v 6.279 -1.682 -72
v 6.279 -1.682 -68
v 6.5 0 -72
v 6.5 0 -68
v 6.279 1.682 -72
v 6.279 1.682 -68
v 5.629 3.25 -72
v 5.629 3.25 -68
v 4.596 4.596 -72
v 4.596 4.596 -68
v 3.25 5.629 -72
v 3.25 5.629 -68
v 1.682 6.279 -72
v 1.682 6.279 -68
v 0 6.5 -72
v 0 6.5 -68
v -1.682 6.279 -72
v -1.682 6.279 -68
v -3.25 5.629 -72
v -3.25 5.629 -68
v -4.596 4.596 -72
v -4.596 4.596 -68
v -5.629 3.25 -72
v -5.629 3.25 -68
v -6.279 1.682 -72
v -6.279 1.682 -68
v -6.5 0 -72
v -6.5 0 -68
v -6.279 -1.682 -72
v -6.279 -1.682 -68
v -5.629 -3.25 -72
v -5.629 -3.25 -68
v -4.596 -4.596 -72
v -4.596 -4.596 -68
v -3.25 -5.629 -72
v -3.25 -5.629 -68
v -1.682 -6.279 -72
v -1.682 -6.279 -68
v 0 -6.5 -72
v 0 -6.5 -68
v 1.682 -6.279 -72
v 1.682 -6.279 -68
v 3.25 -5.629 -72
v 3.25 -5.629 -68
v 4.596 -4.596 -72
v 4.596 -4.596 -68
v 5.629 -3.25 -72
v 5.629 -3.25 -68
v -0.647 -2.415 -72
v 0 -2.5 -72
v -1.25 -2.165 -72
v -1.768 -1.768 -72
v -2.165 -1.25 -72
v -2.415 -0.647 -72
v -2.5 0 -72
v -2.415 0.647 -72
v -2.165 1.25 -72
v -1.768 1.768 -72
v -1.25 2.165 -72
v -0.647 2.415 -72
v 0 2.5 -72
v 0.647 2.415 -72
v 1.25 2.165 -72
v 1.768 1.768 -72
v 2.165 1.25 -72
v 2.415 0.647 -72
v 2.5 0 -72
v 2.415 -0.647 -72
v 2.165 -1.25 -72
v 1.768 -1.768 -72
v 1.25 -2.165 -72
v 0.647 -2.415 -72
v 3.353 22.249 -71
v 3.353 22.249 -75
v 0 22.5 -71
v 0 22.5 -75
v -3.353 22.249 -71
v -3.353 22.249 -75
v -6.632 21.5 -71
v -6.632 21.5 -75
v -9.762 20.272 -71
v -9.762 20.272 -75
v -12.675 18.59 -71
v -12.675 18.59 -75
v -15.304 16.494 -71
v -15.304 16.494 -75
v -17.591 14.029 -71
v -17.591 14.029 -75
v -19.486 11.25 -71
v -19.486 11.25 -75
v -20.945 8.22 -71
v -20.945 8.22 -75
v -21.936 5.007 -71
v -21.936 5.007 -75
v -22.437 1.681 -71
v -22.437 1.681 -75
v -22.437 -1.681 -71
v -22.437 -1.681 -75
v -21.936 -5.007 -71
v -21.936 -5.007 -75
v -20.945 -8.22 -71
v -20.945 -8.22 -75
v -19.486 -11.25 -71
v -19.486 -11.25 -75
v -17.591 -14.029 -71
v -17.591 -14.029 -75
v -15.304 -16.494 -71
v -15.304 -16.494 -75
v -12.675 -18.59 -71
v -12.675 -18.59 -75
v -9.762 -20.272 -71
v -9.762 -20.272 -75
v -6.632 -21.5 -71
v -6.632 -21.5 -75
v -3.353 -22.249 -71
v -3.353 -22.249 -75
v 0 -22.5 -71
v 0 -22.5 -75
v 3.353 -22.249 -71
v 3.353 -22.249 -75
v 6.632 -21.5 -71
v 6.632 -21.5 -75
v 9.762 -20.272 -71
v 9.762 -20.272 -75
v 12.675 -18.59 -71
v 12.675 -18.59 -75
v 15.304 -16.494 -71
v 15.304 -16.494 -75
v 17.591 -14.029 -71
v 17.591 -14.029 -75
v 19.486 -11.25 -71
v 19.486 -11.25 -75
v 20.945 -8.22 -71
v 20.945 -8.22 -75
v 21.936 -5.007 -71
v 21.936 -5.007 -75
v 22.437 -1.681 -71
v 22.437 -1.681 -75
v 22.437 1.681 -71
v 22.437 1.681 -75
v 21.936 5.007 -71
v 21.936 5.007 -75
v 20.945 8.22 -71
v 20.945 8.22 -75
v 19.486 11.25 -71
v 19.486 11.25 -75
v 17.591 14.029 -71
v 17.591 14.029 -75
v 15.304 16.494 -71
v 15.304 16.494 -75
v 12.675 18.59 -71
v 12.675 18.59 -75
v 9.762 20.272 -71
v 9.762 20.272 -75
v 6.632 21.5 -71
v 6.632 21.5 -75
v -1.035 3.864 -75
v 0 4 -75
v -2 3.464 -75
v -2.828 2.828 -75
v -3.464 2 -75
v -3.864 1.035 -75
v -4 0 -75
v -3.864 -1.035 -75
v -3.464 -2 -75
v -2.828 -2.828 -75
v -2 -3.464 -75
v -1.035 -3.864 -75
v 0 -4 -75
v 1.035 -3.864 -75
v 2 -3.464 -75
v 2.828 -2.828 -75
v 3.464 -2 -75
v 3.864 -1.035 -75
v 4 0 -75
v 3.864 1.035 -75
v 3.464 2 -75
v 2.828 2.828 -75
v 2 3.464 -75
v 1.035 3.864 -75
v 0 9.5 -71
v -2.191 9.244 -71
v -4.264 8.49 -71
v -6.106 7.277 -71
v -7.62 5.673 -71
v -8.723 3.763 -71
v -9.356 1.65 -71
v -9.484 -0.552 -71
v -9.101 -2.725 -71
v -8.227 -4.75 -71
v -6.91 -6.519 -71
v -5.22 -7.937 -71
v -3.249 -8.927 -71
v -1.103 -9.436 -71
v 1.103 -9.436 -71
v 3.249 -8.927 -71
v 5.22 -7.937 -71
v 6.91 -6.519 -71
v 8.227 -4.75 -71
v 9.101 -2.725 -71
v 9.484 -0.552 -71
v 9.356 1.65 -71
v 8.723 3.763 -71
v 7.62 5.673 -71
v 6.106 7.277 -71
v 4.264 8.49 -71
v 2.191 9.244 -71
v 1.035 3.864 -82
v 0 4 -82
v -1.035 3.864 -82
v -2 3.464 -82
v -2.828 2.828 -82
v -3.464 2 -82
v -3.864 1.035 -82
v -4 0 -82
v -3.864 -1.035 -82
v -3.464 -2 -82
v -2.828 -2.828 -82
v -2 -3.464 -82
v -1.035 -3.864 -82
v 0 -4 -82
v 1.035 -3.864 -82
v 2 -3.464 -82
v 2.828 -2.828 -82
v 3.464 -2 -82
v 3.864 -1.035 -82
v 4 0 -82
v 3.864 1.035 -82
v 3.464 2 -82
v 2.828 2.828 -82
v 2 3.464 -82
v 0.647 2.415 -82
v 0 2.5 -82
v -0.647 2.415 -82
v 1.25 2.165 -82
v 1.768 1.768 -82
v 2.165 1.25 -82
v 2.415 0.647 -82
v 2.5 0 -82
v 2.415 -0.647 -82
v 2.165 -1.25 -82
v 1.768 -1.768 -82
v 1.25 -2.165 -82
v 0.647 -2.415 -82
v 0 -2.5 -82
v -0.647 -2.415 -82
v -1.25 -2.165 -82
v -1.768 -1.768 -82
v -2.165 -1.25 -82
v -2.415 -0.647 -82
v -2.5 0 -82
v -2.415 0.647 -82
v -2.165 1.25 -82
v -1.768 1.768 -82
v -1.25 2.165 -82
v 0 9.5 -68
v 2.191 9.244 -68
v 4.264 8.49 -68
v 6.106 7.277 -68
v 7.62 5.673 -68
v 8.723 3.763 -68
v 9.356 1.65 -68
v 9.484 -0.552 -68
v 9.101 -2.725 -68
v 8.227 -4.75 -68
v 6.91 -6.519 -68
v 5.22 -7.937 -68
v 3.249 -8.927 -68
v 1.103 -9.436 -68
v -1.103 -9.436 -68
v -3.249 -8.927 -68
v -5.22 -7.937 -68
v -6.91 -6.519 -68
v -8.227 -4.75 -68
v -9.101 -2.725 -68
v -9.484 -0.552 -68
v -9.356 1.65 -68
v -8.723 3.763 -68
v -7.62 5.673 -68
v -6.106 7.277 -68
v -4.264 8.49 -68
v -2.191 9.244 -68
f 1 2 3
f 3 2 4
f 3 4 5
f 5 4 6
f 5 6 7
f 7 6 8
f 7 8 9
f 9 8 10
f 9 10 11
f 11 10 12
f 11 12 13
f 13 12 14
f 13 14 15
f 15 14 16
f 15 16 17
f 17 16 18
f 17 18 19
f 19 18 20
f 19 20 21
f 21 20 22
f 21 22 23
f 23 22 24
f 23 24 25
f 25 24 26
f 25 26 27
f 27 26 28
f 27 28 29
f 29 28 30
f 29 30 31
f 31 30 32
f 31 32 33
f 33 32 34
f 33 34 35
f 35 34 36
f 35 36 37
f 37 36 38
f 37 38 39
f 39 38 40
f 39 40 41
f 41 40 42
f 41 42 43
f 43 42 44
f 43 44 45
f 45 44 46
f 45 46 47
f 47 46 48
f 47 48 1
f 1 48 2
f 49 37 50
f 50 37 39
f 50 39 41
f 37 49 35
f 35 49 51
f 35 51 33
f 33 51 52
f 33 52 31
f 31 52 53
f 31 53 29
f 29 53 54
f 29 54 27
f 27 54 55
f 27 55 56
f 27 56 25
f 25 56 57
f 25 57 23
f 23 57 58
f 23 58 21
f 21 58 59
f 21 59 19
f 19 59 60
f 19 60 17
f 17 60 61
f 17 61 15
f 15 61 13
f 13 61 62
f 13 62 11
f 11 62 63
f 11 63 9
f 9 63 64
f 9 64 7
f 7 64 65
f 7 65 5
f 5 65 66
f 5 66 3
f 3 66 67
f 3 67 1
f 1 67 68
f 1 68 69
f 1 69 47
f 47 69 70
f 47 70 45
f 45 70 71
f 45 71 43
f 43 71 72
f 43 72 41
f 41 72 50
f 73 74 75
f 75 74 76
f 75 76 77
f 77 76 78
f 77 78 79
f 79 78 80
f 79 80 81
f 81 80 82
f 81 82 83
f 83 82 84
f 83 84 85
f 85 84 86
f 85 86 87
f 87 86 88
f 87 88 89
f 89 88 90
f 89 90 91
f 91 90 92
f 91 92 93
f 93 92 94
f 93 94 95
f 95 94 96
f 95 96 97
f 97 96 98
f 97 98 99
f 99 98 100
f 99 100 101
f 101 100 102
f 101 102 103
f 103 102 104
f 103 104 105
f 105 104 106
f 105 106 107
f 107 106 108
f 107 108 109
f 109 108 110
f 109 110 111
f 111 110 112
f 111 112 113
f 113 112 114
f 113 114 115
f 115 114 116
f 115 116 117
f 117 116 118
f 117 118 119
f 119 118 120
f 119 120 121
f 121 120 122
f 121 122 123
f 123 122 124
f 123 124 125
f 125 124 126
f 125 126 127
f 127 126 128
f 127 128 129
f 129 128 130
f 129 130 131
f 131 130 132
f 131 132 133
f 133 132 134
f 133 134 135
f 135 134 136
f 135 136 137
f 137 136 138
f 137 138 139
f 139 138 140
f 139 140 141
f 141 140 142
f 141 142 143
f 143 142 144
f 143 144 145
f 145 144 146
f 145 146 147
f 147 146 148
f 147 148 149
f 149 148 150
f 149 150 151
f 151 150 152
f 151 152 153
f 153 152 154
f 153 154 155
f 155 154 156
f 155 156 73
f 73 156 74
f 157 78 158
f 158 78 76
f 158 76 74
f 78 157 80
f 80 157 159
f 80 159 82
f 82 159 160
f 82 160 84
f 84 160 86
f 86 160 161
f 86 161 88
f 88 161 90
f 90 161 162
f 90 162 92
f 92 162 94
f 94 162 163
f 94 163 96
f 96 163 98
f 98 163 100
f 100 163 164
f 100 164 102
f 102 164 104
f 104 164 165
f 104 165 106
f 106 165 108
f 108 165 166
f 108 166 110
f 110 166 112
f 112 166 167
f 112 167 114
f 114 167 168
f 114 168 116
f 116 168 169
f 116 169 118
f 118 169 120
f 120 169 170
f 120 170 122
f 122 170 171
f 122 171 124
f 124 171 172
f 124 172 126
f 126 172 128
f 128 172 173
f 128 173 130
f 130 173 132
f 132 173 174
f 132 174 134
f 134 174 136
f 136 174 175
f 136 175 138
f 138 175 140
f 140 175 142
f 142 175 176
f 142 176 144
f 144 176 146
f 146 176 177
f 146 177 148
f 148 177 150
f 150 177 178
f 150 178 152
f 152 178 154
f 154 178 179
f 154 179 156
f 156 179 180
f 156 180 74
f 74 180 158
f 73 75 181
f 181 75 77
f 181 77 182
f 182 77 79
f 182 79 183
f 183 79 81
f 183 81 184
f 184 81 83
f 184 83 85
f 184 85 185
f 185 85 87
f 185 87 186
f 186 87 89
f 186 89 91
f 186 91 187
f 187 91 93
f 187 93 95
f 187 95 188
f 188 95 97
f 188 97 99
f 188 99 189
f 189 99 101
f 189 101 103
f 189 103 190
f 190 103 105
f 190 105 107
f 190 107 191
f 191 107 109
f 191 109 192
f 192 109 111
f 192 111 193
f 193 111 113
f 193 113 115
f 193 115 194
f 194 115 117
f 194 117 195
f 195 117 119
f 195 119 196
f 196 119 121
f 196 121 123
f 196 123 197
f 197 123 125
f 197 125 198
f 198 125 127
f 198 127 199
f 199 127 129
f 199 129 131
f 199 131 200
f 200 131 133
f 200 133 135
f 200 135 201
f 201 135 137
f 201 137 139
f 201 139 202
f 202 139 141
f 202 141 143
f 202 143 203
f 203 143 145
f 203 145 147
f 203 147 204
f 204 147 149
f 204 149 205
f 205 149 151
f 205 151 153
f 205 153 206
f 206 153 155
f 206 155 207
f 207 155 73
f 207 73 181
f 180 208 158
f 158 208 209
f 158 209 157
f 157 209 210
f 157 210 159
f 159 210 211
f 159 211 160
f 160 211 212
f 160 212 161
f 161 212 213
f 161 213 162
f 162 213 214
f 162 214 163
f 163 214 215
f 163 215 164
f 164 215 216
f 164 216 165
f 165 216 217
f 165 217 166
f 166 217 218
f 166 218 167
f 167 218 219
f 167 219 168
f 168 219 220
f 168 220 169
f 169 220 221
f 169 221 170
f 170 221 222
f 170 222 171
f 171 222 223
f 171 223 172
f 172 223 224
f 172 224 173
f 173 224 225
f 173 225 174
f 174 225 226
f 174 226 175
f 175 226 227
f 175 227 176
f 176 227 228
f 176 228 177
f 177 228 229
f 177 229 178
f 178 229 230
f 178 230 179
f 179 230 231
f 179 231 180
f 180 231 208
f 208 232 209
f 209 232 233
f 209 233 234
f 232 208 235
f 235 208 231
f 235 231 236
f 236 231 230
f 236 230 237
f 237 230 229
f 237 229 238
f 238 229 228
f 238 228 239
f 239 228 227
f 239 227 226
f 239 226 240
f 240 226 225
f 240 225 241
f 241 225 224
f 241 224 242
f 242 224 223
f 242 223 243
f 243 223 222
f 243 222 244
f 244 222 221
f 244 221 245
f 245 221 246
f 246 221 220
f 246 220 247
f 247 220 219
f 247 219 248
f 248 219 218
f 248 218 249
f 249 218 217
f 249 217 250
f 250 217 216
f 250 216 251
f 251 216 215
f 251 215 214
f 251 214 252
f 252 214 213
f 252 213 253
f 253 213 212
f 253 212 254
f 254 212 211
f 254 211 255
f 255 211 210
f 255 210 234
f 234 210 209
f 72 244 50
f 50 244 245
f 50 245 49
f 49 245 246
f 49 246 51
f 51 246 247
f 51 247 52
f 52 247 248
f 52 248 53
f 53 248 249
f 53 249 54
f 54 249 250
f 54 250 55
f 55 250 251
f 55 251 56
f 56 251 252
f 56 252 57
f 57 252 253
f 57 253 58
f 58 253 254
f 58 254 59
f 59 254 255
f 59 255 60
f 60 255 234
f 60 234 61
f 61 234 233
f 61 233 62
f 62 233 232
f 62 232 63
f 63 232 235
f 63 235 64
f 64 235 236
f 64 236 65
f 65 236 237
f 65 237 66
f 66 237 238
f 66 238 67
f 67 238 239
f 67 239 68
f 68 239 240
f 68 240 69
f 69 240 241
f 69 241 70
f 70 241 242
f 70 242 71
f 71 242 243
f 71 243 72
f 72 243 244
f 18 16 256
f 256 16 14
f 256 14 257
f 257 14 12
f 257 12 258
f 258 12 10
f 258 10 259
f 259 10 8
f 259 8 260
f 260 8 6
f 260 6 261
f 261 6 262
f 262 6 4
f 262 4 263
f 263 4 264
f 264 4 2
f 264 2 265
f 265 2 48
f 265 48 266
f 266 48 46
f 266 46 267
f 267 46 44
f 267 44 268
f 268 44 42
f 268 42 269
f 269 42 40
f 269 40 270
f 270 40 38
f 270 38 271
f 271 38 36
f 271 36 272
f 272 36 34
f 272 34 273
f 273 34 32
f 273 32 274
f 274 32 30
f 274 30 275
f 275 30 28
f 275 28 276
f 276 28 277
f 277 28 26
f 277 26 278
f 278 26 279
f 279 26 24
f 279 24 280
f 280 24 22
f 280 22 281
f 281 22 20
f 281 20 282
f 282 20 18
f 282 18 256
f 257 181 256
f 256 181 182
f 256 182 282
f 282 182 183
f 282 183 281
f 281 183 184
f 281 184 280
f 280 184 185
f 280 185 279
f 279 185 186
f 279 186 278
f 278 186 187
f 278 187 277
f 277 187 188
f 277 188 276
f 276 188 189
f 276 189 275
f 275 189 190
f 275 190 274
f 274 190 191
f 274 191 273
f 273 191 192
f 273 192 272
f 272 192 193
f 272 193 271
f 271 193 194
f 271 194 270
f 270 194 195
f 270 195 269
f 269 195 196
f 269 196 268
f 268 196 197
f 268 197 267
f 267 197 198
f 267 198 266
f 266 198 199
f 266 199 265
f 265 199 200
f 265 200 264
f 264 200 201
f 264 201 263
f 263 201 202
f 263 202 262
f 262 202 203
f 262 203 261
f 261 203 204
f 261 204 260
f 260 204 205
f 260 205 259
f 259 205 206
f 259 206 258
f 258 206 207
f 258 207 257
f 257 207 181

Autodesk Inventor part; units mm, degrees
ref_plane "YZ Plane" through (0, 0, 0) normal (1, 0, 0) x (0, 1, 0)
ref_plane "XZ Plane" through (0, 0, 0) normal (0, 1, 0) x (-1, 0, 0)
ref_plane "XY Plane" through (0, 0, 0) normal (0, 0, 1) x (1, 0, 0)
sketch "Sketch1" plane through (0, 0, 0) normal (1, 0, 0) x (0, 1, 0)
  line L0 (0, 0) -> (2.5, 0)
  line L1 (0, 0) -> (4, 0)
  line L2 (2.5, 0) -> (2.5, -7)
  line L3 (2.5, -7) -> (0, -7)
  line L4 (0, -7) -> (20, -7)
  line L5 (4, 0) -> (4, -7)
  line L6 (2.5, -7) -> (2.5, -41)
  line L7 (20, -7) -> (20, -11)
  line L8 (20, -11) -> (2.5, -11)
  line L9 (20, -7) -> (22.5, -7)
  line L10 (22.5, -7) -> (22.5, -11)
  line L11 (22.5, -11) -> (20, -11)
  line L12 (20, -11) -> (20, -7)
  line L13 (20, -7) -> (20, -11)
  line L14 (4, 0) -> (2.5, 0)
  line L15 (2.5, 0) -> (2.5, -11)
  line L16 (2.5, -11) -> (4, -11)
  line L17 (4, -11) -> (4, 0)
  line L18 (2.5, -11) -> (22.5, -11)
  line L19 (22.5, -11) -> (22.5, -7)
  line L20 (22.5, -7) -> (2.5, -7)
  line L21 (2.5, -7) -> (2.5, -11)
  line L22 (2.5, -11) -> (6.5, -11)
  line L23 (0, -7) -> (0, -105.9451)
  line L24 (2.5, -41) -> (25, -41)
  line L25 (0, -82) -> (2.5, -82)
  line L26 (0, -82) -> (4, -82)
  line L27 (2.5, -82) -> (2.5, -75)
  line L28 (2.5, -75) -> (0, -75)
  line L29 (0, -75) -> (20, -75)
  line L30 (4, -82) -> (4, -75)
  line L31 (20, -75) -> (20, -71)
  line L32 (20, -71) -> (2.5, -71)
  line L33 (20, -75) -> (22.5, -75)
  line L34 (22.5, -75) -> (22.5, -71)
  line L35 (22.5, -71) -> (20, -71)
  line L36 (20, -71) -> (20, -75)
  line L37 (20, -75) -> (20, -71)
  line L38 (4, -82) -> (2.5, -82)
  line L39 (2.5, -82) -> (2.5, -71)
  line L40 (2.5, -71) -> (4, -71)
  line L41 (4, -71) -> (4, -82)
  line L42 (2.5, -71) -> (22.5, -71)
  line L43 (22.5, -71) -> (22.5, -75)
  line L44 (22.5, -75) -> (2.5, -75)
  line L45 (2.5, -75) -> (2.5, -71)
  line L46 (2.5, -71) -> (6.5, -71)
  line L47 (2.5, -11) -> (6.5, -11)
  line L48 (6.5, -11) -> (6.5, -71)
  line L49 (6.5, -71) -> (2.5, -71)
  line L50 (2.5, -71) -> (2.5, -11)
  line L51 (6.5, -11) -> (9.5, -11)
  line L52 (9.5, -11) -> (9.5, -14)
  line L53 (9.5, -14) -> (6.5, -14)
  line L54 (6.5, -14) -> (6.5, -11)
  line L55 (6.5, -71) -> (9.5, -71)
  line L56 (9.5, -71) -> (9.5, -68)
  line L57 (9.5, -68) -> (6.5, -68)
  line L58 (6.5, -68) -> (6.5, -71)
  dimension "d1" = 2.5
  dimension "d2" = 4
  dimension "d3" = 7
  dimension "d4" = 20
  dimension "d5" = 34
  dimension "d9" = 4
  dimension "d12" = 2.5
  dimension "d13" = 4
  dimension "d55" = 22.5
  dimension "d56" = 4
  dimension "d80" = 3
  dimension "d81" = 3
  dimension "d82" = 3
  dimension "d83" = 3
revolve "Revolution2" add sketch "Sketch1" angle 360 about axis through (0, 0, -7) along (0, 0, -1) contours L1 L5 L4 L2 | L4 L17 L8 L6 | L4 L7 L8 L17 | L8 L48 L24 L6 | L9 L10 L11 L7 | L24 L48 L32 L50 | L8 L52 L53 L48 | L29 L30 L26 L27 | L39 L32 L41 L29 | L41 L32 L31 L29 | L57 L56 L32 L48 | L31 L35 L34 L33
sketch "Sketch6" plane through (0, 0, 0) normal (0, 1, 0) x (-1, 0, 0)
  line L0 (-2.5, -82) -> (2.5, -82) projected
  line L1 (0, -82) -> (0, -62)
  line L2 (0, -82) -> (20, -82) construction
  line L3 (0, -65) -> (15, -65) construction
  line L4 (0, -59) -> (15, -59) construction
  line L5 (10.6066, -48.3934) -> (10.6066, -54.3934)
  line L6 (0, -65) -> (0, -59)
  line L7 (0, -62) -> (0, -59.5)
  line L8 (0, -59.5) -> (10.6066, -48.8934)
  line L9 (10.6066, -48.8934) -> (10.6066, -53.8934)
  line L10 (10.6066, -53.8934) -> (0, -64.5)
  line L11 (0, -59.5) -> (0, -64.5)
  point P0 (0, 0)
  dimension "d64" = 20
  dimension "d65" = 90
  dimension "d69" = 15
  dimension "d71" = 15
  dimension "d75" = 2.5
  dimension "d76" = 5
extrude "Extrusion6" cut sketch "Sketch6" along normal mid plane 5
sketch "Sketch7" plane through (0, 0, 0) normal (0, 0, 1) x (1, 0, 0)
  arc A0 (-1.9966, -1.5104) -> (-1.9966, 1.4896) centre (0.0034, -0.0104) ccw
  line L0 (-1.9966, -0.0104) -> (-1.9966, 1.4896)
  line L1 (-1.9966, -0.0104) -> (-1.9966, -1.5104)
  line L2 (-1.9966, 1.4896) -> (-1.9966, -2.007)
  line L3 (-1.9966, -2.007) -> (-3.9862, -2.007)
  line L4 (-3.9862, -2.007) -> (-3.9862, 1.4896)
  line L5 (-3.9862, 1.4896) -> (-1.9966, 1.4896)
  line L6 (-1.9966, -1.5104) -> (-3.2272, -1.5104)
  line L7 (-3.2272, -1.5104) -> (-3.2272, 1.4896)
  line L8 (-3.2272, 1.4896) -> (-1.9966, 1.4896)
  line L9 (-1.9966, 1.4896) -> (-1.9966, -1.5104)
  point P0 (0, 0)
  point P1 (0, 0)
  dimension "d77" = 5
extrude "Extrusion7" add sketch "Sketch7" against normal blind 26 contours L6 L7 L5 L0 L1
sketch "Sketch8" plane through (0, 0, -68) normal (0, 0, 1) x (1, 0, 0)
  arc A0 (0, 2.5) -> (0, -2.5) centre (0, 0) ccw projected
  circle A1 centre (0, 0) radius 6.5
  point P0 (0, 0)
extrude "Extrusion8" cut sketch "Sketch8" against normal blind 4
sketch "Sketch9" plane through (0, 0, -68) normal (0, 0, 1) x (1, 0, 0)
  circle A0 centre (0, 0) radius 2.5 projected
  circle A1 centre (0, 0) radius 22.5
  point P0 (0, 0)
extrude "Extrusion9" cut sketch "Sketch9" along normal blind 100 contours A0 | A1
properties part number "Spool_revB1"
